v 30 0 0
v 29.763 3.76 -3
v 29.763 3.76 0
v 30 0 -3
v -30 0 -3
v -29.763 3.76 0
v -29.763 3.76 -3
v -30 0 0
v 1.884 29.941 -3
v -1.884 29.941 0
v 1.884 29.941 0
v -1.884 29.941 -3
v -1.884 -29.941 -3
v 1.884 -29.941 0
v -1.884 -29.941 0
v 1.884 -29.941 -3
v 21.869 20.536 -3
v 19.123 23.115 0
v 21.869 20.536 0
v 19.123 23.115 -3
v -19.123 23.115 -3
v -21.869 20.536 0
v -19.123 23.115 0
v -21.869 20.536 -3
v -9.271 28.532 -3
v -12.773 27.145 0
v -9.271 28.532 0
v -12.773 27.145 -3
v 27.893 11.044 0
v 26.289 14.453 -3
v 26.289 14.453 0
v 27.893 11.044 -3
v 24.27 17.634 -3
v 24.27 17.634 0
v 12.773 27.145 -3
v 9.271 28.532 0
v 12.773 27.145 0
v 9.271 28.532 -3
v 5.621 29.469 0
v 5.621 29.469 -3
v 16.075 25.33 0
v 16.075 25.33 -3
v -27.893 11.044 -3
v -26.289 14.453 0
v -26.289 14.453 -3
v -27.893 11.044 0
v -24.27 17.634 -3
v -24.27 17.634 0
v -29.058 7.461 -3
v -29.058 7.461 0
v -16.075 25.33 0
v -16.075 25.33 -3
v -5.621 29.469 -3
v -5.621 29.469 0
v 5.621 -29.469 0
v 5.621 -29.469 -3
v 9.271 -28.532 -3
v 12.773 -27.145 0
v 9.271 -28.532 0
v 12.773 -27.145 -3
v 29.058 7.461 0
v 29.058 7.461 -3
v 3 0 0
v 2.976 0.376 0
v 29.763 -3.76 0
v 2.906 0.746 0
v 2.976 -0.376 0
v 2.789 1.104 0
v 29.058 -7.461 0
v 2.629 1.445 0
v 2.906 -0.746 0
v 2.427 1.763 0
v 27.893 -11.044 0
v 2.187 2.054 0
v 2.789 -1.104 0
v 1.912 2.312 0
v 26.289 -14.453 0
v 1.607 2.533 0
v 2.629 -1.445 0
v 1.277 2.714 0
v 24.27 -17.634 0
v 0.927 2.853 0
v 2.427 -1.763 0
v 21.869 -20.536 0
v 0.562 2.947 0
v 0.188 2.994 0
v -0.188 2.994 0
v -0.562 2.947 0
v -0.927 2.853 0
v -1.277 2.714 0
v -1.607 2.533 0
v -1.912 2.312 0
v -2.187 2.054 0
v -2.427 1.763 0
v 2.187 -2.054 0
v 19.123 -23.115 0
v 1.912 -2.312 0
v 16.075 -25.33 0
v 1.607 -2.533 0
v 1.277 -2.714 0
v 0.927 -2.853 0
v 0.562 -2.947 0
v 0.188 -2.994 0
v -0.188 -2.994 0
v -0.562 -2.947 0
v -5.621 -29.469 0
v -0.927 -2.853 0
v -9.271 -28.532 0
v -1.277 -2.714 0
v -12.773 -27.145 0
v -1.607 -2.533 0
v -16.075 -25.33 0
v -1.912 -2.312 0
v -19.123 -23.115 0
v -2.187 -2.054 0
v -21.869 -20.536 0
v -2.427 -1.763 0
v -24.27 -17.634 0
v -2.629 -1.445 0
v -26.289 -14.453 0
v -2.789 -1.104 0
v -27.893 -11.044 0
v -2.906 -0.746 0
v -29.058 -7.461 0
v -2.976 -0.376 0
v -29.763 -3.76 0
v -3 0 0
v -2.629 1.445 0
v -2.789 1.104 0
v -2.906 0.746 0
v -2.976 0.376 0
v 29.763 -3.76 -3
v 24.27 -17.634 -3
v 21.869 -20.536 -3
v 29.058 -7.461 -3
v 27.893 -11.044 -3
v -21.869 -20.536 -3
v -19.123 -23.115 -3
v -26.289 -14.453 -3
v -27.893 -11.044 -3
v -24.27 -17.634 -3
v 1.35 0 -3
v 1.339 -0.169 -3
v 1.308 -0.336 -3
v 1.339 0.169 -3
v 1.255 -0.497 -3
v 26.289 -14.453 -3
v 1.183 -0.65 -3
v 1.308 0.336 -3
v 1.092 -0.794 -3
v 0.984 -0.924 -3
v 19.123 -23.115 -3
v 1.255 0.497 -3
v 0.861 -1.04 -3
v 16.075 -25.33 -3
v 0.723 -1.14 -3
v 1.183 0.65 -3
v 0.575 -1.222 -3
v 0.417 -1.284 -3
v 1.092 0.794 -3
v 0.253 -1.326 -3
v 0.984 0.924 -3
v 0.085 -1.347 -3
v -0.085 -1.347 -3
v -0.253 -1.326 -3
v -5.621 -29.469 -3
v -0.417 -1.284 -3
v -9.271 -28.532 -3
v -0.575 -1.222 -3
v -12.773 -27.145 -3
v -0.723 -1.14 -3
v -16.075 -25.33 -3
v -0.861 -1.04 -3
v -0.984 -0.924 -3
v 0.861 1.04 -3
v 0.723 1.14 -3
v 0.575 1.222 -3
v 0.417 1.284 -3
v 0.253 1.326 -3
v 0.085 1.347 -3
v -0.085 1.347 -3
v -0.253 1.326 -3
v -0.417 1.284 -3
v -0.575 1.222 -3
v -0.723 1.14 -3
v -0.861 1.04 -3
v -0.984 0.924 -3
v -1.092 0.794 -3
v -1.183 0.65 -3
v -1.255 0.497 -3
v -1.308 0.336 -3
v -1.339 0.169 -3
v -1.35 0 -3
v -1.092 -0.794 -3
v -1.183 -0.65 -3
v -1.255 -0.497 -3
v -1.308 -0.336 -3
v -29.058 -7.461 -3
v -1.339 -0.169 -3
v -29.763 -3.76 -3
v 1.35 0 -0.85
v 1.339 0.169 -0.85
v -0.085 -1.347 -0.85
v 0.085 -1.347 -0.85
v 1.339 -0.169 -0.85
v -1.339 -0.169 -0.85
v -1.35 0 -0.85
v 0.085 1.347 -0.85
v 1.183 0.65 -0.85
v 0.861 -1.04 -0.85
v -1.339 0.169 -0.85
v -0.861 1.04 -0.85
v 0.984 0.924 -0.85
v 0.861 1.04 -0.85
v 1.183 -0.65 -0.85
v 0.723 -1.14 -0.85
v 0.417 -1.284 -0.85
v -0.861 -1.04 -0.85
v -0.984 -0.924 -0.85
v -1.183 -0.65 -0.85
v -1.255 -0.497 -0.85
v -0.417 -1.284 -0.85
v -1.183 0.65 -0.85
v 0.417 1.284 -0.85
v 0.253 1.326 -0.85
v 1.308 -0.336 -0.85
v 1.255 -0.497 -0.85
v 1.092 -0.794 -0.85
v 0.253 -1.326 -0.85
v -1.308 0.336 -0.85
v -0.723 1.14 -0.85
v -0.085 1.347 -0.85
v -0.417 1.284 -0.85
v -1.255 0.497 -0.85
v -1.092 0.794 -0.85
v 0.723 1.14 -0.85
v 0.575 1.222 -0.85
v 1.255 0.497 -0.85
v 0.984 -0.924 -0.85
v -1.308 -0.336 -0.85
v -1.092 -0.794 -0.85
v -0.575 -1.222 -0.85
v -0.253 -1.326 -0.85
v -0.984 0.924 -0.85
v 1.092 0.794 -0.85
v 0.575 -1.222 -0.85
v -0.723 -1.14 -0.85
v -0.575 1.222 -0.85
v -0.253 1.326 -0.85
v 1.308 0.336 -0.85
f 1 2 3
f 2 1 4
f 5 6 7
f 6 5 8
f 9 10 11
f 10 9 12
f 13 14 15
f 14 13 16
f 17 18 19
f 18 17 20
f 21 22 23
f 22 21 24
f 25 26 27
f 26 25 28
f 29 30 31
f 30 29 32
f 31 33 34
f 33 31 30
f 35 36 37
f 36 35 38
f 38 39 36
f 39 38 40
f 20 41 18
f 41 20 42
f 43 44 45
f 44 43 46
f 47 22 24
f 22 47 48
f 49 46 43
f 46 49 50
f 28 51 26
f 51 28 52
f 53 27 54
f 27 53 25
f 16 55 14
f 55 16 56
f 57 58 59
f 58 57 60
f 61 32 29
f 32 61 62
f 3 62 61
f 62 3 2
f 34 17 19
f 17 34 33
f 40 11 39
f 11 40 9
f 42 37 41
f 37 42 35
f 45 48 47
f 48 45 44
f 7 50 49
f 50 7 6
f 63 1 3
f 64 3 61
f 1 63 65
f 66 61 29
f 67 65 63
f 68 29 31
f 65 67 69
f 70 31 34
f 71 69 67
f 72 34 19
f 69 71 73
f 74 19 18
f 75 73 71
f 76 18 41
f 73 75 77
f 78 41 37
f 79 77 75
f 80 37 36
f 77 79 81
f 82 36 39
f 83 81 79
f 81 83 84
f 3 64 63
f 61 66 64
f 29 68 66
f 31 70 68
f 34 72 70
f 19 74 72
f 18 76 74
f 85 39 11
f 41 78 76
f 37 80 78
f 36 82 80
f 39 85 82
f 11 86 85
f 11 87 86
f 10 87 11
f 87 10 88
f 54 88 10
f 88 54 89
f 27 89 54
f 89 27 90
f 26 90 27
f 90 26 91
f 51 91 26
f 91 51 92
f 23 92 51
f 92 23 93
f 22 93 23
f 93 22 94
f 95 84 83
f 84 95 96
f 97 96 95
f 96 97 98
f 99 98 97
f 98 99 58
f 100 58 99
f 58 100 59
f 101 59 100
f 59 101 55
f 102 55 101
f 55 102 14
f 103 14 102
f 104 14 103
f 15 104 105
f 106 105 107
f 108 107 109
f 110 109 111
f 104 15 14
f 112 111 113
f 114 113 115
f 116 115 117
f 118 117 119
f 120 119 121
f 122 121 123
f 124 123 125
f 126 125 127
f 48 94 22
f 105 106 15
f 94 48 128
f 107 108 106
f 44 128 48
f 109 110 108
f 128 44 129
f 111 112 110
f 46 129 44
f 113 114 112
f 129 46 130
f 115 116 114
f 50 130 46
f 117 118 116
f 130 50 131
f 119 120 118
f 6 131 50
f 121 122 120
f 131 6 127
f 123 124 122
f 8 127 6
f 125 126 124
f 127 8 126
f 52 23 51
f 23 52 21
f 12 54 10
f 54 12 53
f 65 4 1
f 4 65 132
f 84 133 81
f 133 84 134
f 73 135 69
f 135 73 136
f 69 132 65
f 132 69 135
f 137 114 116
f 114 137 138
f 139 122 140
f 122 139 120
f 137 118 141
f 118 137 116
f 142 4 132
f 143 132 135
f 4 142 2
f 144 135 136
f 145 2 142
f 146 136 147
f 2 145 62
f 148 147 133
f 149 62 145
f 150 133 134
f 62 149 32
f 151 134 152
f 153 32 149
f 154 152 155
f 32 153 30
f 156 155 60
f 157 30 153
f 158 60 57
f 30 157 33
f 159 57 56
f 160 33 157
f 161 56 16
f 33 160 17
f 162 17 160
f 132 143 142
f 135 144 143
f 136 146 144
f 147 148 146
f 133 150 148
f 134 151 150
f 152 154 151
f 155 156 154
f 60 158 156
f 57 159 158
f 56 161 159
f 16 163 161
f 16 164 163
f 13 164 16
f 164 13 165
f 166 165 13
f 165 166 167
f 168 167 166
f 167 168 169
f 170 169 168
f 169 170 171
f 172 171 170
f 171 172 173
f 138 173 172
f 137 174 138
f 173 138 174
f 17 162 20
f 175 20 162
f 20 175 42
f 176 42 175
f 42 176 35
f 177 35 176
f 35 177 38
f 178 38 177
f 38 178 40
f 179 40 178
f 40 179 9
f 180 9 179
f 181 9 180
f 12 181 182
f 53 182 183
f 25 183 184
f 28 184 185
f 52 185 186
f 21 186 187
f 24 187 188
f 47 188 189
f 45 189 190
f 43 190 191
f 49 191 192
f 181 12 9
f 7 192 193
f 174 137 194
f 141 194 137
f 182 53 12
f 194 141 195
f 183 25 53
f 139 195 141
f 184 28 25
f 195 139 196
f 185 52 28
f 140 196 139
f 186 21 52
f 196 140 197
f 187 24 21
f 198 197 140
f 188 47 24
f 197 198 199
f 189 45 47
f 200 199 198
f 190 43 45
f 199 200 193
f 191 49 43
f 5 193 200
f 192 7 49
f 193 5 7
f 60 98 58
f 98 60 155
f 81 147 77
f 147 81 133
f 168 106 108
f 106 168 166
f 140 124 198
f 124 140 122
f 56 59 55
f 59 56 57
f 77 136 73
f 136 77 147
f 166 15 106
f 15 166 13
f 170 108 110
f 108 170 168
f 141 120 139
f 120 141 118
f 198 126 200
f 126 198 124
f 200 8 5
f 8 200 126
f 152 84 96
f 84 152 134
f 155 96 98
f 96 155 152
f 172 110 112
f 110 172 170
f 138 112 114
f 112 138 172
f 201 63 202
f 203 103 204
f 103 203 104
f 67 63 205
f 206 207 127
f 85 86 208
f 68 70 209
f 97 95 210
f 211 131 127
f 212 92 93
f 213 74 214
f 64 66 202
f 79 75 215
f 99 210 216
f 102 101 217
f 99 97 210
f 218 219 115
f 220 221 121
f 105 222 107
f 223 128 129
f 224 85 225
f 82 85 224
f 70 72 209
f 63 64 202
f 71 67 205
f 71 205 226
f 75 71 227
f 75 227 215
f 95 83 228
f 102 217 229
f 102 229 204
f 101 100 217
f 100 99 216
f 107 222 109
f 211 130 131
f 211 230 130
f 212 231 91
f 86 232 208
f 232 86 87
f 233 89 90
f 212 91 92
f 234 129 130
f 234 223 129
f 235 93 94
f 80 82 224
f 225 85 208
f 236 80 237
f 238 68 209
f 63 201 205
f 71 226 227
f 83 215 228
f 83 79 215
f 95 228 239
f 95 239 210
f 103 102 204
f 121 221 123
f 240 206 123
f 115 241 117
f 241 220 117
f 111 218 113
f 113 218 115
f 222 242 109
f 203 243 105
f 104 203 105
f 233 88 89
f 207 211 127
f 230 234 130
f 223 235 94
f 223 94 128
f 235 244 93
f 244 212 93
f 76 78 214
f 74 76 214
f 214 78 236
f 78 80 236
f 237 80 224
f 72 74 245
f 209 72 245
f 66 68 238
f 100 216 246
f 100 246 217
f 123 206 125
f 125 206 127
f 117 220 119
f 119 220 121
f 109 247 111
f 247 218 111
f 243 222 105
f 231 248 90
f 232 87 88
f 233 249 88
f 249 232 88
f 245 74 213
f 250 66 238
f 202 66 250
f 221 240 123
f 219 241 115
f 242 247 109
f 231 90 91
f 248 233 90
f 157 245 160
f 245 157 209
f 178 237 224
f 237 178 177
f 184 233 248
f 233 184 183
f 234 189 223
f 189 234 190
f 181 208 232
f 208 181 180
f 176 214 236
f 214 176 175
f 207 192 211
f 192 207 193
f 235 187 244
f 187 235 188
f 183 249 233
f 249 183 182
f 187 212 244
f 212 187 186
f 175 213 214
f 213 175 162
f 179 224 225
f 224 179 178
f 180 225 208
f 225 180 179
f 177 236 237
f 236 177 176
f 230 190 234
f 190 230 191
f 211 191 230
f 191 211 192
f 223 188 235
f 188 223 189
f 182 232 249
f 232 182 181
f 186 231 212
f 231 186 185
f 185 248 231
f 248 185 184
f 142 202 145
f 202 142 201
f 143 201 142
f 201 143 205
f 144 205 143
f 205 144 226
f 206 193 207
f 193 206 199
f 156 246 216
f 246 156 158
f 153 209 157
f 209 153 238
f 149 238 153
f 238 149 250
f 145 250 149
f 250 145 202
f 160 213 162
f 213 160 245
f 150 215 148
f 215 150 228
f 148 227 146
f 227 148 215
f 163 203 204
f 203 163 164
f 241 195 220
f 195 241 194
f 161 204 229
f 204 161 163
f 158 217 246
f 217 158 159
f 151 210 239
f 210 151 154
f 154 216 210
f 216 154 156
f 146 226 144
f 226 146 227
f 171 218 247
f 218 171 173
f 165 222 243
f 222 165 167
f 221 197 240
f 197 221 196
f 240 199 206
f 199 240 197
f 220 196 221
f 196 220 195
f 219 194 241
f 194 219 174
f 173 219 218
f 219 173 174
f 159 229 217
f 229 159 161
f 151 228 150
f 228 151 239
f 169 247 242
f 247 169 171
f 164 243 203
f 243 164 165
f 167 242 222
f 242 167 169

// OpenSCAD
$fn = 50;


difference() {
	union() {
		translate(v = [0, 0, -3.0000000000]) {
			cylinder(h = 3, r = 30.0000000000);
		}
		translate(v = [0, 0, -3.0000000000]) {
			cylinder(h = 3, r = 2.8750000000);
		}
	}
	union() {
		translate(v = [0, 0, 0]) {
			rotate(a = [0, 0, 0]) {
				difference() {
					union() {
						translate(v = [0, 0, -3.0000000000]) {
							cylinder(h = 3, r = 1.0000000000);
						}
						translate(v = [0, 0, -0.8500000000]) {
							cylinder(h = 0.8500000000, r1 = 1.3500000000, r2 = 3.0000000000);
						}
						translate(v = [0, 0, -3.0000000000]) {
							cylinder(h = 3, r = 1.3500000000);
						}
						translate(v = [0, 0, -3.0000000000]) {
							cylinder(h = 3, r = 1.0000000000);
						}
					}
					union();
				}
			}
		}
	}
}
